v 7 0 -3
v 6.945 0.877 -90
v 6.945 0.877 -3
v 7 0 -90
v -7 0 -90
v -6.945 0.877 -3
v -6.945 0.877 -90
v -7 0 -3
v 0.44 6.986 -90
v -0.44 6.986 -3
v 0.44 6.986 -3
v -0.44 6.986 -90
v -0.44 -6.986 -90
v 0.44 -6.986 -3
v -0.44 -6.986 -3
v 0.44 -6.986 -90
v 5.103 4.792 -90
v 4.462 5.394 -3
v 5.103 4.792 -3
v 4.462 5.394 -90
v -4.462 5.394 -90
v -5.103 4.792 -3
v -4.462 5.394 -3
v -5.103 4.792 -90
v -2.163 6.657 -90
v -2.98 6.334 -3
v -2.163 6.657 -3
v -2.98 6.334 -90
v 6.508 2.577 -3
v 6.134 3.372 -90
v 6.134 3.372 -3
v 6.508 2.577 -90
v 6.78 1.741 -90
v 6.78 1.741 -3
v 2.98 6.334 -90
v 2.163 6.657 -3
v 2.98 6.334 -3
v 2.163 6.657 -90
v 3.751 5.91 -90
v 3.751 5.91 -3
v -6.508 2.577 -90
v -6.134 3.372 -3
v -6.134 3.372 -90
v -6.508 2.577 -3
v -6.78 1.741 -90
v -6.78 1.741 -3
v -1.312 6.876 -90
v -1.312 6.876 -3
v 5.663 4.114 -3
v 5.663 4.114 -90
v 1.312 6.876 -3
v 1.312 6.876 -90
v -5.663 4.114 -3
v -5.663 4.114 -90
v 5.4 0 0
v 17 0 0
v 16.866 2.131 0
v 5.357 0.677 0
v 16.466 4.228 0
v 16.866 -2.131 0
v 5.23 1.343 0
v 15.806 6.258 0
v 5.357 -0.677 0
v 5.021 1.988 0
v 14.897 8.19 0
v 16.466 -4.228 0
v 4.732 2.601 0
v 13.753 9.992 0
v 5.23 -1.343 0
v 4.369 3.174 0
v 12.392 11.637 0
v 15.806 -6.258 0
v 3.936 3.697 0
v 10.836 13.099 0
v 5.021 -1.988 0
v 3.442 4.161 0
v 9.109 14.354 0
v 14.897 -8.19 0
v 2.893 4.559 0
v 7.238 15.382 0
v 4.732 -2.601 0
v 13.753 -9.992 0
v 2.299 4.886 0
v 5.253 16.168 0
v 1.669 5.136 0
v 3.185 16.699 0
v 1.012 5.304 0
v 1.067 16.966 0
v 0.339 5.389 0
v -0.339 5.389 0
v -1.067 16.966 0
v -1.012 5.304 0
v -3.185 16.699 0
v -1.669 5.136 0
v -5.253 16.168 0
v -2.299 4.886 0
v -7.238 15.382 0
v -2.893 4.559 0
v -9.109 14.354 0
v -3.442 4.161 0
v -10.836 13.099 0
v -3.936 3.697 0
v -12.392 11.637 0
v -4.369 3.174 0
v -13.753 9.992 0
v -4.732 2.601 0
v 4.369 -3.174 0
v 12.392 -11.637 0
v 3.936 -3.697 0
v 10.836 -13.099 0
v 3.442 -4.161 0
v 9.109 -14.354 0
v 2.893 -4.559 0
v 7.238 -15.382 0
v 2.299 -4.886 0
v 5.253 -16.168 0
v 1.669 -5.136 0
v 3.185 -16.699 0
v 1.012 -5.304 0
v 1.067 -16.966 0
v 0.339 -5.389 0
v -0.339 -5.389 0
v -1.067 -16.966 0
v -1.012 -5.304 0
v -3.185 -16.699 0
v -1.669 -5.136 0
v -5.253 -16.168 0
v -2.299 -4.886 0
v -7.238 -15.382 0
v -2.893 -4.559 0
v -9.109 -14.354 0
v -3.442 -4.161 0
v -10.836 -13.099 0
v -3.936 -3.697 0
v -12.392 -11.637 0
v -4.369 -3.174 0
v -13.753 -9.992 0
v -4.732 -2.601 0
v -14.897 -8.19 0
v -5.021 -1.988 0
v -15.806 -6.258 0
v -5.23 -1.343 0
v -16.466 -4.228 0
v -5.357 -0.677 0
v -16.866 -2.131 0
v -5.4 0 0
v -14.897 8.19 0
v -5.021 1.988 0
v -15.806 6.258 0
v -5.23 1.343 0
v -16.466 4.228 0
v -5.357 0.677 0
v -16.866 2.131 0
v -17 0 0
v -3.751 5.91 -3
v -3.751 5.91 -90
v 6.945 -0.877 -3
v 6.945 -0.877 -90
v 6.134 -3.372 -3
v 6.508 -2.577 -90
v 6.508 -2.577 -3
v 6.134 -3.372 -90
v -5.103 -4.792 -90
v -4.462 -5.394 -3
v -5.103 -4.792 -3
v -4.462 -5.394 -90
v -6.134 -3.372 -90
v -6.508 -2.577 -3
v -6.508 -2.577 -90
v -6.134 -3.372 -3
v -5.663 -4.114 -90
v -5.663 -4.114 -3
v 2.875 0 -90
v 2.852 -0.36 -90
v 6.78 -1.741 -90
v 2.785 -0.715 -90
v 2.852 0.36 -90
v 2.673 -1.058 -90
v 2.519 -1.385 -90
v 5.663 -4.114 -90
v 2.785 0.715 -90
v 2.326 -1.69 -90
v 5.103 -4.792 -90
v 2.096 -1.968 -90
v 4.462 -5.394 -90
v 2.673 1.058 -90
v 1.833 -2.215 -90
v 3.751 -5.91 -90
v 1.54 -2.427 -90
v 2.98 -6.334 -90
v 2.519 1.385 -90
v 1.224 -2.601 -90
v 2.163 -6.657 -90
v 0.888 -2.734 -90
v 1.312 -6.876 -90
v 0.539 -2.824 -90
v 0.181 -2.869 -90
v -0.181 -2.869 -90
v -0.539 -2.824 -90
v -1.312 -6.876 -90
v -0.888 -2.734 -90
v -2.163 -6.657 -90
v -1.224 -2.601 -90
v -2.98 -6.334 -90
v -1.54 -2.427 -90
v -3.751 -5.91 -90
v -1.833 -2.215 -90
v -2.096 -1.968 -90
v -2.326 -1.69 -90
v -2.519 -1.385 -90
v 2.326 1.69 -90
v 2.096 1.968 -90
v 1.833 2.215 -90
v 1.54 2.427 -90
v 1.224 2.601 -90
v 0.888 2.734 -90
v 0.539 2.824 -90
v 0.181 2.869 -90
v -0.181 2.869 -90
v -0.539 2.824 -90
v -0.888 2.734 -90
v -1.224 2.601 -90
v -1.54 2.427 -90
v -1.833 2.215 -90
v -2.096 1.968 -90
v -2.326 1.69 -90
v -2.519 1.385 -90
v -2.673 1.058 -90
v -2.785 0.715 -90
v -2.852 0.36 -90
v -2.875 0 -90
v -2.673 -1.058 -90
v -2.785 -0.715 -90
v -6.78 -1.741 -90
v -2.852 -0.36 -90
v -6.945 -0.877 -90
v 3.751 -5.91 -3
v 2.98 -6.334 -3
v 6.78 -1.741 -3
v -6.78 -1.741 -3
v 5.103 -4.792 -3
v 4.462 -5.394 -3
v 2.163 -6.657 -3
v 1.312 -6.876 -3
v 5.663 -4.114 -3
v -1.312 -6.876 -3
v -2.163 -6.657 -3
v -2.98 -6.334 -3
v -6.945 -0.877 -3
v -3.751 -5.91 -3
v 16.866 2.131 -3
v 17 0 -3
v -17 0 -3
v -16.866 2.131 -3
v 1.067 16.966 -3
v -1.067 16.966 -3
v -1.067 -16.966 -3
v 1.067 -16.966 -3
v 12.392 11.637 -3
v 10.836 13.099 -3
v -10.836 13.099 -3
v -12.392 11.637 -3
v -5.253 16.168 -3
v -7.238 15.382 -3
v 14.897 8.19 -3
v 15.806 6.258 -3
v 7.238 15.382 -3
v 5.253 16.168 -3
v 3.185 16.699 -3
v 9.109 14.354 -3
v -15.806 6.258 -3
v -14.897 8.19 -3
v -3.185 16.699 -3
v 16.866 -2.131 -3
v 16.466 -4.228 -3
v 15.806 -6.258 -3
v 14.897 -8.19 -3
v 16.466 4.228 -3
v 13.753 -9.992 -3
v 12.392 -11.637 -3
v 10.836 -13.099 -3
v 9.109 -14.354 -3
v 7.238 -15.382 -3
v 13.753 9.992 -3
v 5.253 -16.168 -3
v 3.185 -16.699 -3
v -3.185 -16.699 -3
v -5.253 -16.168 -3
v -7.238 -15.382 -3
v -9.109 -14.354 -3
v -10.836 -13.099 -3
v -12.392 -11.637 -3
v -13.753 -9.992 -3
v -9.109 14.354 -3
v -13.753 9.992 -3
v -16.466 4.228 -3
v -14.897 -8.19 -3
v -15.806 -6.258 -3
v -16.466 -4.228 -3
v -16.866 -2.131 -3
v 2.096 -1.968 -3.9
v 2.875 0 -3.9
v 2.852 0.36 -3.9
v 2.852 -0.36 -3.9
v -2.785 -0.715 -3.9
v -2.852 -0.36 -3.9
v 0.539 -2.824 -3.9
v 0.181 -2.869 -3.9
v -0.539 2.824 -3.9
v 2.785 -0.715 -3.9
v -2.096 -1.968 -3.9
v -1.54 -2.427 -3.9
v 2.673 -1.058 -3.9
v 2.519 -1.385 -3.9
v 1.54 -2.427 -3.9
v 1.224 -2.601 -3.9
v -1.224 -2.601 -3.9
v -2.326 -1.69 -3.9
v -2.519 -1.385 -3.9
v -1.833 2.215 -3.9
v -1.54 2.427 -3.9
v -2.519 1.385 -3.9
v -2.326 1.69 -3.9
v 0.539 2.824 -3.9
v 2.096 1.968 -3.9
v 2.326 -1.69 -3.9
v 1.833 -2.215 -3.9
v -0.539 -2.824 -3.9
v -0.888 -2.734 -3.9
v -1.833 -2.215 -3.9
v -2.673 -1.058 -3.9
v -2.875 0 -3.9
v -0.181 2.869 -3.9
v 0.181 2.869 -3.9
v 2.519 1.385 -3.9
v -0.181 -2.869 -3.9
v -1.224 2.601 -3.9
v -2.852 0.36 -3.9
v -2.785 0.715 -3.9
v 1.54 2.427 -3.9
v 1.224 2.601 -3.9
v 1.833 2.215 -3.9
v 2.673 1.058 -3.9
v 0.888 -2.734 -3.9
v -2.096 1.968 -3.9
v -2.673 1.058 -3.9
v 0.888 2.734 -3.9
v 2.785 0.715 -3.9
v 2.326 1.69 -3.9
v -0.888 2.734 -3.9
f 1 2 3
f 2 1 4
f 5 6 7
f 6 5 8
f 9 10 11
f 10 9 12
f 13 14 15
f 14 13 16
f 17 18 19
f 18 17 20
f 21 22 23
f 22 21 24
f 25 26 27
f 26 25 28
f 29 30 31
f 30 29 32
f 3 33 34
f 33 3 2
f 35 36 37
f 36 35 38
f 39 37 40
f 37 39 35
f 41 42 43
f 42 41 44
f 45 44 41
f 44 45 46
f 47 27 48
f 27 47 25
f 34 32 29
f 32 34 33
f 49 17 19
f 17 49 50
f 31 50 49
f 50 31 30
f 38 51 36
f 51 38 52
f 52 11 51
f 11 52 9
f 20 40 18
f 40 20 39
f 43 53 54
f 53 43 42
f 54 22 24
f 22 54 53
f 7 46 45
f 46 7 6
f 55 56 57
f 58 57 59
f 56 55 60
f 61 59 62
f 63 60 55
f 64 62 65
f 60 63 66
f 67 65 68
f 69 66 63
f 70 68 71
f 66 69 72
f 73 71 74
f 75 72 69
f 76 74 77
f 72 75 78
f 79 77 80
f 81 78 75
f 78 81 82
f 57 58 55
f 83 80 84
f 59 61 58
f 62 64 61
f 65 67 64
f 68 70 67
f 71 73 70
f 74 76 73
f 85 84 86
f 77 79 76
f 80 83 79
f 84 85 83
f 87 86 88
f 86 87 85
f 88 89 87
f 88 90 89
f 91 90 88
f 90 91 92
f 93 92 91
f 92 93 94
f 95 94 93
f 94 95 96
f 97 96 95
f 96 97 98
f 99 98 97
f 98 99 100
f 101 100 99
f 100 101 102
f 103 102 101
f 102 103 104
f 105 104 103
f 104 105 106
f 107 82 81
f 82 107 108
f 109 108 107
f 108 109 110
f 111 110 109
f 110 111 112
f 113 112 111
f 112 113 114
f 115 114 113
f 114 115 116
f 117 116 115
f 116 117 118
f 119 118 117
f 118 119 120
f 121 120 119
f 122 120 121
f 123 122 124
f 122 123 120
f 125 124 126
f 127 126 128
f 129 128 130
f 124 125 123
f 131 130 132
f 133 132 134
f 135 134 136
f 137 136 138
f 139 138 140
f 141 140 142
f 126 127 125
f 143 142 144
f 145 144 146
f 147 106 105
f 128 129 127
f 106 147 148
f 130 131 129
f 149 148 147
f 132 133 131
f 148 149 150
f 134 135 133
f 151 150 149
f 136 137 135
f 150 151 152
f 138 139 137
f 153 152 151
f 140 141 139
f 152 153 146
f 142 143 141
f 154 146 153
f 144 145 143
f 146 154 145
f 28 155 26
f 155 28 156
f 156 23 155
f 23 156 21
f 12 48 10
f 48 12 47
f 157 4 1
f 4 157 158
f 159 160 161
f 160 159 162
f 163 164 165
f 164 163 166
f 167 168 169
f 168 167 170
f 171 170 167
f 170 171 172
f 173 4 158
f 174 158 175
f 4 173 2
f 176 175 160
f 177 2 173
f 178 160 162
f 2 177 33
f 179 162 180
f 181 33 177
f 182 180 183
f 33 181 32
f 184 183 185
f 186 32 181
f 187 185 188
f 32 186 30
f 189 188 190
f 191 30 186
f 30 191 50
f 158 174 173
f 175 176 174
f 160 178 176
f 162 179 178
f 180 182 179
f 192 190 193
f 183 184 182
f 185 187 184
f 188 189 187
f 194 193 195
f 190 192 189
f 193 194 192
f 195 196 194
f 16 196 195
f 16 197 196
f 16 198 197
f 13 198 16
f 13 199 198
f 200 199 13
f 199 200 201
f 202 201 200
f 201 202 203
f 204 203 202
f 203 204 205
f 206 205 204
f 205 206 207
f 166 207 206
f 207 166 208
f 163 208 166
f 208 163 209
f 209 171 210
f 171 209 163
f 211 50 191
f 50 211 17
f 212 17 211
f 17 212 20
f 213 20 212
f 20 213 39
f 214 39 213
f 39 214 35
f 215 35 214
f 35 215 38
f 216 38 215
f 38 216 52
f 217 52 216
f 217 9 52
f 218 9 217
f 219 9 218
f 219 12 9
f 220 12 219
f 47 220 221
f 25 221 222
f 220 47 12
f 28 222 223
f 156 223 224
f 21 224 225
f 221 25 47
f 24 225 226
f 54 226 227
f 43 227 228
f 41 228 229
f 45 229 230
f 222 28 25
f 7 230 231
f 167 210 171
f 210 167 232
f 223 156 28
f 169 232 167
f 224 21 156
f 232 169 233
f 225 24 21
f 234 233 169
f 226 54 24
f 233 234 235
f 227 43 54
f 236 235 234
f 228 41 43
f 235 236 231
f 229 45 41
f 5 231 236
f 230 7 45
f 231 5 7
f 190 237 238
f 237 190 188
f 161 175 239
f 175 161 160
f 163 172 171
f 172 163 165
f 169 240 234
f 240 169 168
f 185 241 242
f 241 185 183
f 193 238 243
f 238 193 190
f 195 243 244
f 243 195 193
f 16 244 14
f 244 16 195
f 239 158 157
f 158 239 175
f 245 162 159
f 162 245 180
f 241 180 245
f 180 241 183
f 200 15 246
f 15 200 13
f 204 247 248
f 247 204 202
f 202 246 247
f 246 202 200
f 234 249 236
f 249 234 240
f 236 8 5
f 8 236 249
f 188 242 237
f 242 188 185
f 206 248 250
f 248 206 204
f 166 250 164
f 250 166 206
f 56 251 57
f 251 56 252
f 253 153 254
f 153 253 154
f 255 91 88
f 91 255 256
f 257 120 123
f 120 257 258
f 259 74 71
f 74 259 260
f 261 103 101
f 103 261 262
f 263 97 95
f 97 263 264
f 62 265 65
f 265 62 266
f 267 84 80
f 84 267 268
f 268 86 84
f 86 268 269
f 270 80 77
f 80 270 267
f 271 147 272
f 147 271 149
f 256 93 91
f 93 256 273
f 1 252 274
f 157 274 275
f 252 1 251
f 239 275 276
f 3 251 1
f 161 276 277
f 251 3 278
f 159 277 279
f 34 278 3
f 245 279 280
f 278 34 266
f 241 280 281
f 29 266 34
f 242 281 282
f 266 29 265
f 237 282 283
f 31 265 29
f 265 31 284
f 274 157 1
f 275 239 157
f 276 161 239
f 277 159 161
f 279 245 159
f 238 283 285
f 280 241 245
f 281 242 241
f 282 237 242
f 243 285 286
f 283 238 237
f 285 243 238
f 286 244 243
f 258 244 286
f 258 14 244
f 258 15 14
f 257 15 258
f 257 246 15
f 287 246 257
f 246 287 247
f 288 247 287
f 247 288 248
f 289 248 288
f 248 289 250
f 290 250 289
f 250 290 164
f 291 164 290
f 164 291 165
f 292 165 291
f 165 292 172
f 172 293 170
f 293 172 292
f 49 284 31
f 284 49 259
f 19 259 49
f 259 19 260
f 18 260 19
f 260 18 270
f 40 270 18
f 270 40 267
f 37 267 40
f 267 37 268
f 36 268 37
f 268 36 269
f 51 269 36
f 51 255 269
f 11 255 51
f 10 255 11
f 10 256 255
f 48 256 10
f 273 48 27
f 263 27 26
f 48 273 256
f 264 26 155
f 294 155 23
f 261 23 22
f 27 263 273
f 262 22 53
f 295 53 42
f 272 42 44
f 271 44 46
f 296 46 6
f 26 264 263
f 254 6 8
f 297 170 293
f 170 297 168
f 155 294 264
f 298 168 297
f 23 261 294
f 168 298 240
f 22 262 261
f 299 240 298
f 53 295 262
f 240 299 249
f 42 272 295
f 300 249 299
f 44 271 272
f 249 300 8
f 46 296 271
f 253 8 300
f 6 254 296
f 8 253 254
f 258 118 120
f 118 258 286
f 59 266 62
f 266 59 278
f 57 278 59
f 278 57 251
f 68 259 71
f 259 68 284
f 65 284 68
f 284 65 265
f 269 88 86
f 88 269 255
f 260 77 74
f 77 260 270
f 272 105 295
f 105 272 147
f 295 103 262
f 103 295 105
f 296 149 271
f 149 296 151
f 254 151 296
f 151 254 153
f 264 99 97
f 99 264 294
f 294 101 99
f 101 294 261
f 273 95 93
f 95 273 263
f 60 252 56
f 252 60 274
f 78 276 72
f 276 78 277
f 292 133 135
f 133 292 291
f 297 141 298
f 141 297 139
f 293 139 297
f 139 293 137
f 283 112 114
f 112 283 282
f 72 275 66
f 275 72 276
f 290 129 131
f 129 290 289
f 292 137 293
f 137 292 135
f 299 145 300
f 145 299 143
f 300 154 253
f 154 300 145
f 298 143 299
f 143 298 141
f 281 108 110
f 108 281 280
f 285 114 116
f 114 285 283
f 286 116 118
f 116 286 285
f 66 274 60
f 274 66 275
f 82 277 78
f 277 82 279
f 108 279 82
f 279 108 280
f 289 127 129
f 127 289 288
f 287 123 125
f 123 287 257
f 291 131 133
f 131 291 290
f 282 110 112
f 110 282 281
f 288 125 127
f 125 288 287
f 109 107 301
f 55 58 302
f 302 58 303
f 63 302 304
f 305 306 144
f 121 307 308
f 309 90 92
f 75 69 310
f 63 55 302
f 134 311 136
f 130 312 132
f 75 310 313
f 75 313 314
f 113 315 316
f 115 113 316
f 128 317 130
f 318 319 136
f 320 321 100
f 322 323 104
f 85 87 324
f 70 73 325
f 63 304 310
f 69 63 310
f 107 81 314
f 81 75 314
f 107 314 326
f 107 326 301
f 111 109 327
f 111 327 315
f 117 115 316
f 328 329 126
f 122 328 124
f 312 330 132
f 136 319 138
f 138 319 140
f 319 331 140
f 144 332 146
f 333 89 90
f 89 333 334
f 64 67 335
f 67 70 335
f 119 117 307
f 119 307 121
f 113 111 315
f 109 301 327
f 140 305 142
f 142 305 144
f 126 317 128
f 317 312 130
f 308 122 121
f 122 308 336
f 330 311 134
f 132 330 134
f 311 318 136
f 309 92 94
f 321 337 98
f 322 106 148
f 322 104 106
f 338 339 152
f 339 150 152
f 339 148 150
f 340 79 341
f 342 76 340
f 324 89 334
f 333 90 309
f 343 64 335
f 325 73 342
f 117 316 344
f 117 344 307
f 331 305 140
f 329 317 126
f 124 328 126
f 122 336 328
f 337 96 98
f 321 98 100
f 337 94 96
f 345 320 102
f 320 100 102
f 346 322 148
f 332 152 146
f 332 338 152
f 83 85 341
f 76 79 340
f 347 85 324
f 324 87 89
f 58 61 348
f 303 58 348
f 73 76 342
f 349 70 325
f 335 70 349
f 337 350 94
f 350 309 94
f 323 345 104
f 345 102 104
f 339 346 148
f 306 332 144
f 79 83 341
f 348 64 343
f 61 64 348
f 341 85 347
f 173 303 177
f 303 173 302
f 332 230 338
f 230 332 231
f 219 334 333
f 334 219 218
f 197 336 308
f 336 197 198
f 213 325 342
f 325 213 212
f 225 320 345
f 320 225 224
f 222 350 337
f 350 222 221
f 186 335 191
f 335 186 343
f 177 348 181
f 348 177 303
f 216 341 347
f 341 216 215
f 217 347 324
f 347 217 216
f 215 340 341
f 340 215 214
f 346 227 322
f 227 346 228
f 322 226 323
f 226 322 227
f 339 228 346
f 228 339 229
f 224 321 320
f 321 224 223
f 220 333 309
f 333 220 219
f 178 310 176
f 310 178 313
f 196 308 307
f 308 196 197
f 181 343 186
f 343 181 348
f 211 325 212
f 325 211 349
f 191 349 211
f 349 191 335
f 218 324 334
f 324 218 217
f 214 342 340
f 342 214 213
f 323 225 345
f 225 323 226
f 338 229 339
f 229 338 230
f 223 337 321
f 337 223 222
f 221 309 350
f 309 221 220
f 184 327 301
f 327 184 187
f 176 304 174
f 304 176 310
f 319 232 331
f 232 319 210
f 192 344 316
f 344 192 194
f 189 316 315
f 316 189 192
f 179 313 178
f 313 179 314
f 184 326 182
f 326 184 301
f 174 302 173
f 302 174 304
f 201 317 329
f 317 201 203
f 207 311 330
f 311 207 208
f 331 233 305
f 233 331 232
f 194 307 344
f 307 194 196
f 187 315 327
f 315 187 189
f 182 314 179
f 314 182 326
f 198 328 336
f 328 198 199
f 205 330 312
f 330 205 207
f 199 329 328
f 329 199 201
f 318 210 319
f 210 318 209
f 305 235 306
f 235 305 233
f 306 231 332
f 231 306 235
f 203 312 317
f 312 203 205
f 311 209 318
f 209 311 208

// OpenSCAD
$fn = 50;


difference() {
	union() {
		translate(v = [0, 0, -90.0000000000]) {
			cylinder(h = 90, r = 7.0000000000);
		}
		translate(v = [0, 0, -3.0000000000]) {
			cylinder(h = 3, r = 17.0000000000);
		}
	}
	union() {
		translate(v = [0, 0, 0]) {
			rotate(a = [0, 0, 0]) {
				difference() {
					union() {
						#translate(v = [0, 0, -90.0000000000]) {
							cylinder(h = 90, r = 2.6000000000);
						}
						#translate(v = [0, 0, -3.9000000000]) {
							cylinder(h = 3.9000000000, r1 = 2.8750000000, r2 = 5.4000000000);
						}
						#translate(v = [0, 0, -90.0000000000]) {
							cylinder(h = 90, r = 2.8750000000);
						}
						#translate(v = [0, 0, -90.0000000000]) {
							cylinder(h = 90, r = 2.6000000000);
						}
					}
					union();
				}
			}
		}
	}
}
